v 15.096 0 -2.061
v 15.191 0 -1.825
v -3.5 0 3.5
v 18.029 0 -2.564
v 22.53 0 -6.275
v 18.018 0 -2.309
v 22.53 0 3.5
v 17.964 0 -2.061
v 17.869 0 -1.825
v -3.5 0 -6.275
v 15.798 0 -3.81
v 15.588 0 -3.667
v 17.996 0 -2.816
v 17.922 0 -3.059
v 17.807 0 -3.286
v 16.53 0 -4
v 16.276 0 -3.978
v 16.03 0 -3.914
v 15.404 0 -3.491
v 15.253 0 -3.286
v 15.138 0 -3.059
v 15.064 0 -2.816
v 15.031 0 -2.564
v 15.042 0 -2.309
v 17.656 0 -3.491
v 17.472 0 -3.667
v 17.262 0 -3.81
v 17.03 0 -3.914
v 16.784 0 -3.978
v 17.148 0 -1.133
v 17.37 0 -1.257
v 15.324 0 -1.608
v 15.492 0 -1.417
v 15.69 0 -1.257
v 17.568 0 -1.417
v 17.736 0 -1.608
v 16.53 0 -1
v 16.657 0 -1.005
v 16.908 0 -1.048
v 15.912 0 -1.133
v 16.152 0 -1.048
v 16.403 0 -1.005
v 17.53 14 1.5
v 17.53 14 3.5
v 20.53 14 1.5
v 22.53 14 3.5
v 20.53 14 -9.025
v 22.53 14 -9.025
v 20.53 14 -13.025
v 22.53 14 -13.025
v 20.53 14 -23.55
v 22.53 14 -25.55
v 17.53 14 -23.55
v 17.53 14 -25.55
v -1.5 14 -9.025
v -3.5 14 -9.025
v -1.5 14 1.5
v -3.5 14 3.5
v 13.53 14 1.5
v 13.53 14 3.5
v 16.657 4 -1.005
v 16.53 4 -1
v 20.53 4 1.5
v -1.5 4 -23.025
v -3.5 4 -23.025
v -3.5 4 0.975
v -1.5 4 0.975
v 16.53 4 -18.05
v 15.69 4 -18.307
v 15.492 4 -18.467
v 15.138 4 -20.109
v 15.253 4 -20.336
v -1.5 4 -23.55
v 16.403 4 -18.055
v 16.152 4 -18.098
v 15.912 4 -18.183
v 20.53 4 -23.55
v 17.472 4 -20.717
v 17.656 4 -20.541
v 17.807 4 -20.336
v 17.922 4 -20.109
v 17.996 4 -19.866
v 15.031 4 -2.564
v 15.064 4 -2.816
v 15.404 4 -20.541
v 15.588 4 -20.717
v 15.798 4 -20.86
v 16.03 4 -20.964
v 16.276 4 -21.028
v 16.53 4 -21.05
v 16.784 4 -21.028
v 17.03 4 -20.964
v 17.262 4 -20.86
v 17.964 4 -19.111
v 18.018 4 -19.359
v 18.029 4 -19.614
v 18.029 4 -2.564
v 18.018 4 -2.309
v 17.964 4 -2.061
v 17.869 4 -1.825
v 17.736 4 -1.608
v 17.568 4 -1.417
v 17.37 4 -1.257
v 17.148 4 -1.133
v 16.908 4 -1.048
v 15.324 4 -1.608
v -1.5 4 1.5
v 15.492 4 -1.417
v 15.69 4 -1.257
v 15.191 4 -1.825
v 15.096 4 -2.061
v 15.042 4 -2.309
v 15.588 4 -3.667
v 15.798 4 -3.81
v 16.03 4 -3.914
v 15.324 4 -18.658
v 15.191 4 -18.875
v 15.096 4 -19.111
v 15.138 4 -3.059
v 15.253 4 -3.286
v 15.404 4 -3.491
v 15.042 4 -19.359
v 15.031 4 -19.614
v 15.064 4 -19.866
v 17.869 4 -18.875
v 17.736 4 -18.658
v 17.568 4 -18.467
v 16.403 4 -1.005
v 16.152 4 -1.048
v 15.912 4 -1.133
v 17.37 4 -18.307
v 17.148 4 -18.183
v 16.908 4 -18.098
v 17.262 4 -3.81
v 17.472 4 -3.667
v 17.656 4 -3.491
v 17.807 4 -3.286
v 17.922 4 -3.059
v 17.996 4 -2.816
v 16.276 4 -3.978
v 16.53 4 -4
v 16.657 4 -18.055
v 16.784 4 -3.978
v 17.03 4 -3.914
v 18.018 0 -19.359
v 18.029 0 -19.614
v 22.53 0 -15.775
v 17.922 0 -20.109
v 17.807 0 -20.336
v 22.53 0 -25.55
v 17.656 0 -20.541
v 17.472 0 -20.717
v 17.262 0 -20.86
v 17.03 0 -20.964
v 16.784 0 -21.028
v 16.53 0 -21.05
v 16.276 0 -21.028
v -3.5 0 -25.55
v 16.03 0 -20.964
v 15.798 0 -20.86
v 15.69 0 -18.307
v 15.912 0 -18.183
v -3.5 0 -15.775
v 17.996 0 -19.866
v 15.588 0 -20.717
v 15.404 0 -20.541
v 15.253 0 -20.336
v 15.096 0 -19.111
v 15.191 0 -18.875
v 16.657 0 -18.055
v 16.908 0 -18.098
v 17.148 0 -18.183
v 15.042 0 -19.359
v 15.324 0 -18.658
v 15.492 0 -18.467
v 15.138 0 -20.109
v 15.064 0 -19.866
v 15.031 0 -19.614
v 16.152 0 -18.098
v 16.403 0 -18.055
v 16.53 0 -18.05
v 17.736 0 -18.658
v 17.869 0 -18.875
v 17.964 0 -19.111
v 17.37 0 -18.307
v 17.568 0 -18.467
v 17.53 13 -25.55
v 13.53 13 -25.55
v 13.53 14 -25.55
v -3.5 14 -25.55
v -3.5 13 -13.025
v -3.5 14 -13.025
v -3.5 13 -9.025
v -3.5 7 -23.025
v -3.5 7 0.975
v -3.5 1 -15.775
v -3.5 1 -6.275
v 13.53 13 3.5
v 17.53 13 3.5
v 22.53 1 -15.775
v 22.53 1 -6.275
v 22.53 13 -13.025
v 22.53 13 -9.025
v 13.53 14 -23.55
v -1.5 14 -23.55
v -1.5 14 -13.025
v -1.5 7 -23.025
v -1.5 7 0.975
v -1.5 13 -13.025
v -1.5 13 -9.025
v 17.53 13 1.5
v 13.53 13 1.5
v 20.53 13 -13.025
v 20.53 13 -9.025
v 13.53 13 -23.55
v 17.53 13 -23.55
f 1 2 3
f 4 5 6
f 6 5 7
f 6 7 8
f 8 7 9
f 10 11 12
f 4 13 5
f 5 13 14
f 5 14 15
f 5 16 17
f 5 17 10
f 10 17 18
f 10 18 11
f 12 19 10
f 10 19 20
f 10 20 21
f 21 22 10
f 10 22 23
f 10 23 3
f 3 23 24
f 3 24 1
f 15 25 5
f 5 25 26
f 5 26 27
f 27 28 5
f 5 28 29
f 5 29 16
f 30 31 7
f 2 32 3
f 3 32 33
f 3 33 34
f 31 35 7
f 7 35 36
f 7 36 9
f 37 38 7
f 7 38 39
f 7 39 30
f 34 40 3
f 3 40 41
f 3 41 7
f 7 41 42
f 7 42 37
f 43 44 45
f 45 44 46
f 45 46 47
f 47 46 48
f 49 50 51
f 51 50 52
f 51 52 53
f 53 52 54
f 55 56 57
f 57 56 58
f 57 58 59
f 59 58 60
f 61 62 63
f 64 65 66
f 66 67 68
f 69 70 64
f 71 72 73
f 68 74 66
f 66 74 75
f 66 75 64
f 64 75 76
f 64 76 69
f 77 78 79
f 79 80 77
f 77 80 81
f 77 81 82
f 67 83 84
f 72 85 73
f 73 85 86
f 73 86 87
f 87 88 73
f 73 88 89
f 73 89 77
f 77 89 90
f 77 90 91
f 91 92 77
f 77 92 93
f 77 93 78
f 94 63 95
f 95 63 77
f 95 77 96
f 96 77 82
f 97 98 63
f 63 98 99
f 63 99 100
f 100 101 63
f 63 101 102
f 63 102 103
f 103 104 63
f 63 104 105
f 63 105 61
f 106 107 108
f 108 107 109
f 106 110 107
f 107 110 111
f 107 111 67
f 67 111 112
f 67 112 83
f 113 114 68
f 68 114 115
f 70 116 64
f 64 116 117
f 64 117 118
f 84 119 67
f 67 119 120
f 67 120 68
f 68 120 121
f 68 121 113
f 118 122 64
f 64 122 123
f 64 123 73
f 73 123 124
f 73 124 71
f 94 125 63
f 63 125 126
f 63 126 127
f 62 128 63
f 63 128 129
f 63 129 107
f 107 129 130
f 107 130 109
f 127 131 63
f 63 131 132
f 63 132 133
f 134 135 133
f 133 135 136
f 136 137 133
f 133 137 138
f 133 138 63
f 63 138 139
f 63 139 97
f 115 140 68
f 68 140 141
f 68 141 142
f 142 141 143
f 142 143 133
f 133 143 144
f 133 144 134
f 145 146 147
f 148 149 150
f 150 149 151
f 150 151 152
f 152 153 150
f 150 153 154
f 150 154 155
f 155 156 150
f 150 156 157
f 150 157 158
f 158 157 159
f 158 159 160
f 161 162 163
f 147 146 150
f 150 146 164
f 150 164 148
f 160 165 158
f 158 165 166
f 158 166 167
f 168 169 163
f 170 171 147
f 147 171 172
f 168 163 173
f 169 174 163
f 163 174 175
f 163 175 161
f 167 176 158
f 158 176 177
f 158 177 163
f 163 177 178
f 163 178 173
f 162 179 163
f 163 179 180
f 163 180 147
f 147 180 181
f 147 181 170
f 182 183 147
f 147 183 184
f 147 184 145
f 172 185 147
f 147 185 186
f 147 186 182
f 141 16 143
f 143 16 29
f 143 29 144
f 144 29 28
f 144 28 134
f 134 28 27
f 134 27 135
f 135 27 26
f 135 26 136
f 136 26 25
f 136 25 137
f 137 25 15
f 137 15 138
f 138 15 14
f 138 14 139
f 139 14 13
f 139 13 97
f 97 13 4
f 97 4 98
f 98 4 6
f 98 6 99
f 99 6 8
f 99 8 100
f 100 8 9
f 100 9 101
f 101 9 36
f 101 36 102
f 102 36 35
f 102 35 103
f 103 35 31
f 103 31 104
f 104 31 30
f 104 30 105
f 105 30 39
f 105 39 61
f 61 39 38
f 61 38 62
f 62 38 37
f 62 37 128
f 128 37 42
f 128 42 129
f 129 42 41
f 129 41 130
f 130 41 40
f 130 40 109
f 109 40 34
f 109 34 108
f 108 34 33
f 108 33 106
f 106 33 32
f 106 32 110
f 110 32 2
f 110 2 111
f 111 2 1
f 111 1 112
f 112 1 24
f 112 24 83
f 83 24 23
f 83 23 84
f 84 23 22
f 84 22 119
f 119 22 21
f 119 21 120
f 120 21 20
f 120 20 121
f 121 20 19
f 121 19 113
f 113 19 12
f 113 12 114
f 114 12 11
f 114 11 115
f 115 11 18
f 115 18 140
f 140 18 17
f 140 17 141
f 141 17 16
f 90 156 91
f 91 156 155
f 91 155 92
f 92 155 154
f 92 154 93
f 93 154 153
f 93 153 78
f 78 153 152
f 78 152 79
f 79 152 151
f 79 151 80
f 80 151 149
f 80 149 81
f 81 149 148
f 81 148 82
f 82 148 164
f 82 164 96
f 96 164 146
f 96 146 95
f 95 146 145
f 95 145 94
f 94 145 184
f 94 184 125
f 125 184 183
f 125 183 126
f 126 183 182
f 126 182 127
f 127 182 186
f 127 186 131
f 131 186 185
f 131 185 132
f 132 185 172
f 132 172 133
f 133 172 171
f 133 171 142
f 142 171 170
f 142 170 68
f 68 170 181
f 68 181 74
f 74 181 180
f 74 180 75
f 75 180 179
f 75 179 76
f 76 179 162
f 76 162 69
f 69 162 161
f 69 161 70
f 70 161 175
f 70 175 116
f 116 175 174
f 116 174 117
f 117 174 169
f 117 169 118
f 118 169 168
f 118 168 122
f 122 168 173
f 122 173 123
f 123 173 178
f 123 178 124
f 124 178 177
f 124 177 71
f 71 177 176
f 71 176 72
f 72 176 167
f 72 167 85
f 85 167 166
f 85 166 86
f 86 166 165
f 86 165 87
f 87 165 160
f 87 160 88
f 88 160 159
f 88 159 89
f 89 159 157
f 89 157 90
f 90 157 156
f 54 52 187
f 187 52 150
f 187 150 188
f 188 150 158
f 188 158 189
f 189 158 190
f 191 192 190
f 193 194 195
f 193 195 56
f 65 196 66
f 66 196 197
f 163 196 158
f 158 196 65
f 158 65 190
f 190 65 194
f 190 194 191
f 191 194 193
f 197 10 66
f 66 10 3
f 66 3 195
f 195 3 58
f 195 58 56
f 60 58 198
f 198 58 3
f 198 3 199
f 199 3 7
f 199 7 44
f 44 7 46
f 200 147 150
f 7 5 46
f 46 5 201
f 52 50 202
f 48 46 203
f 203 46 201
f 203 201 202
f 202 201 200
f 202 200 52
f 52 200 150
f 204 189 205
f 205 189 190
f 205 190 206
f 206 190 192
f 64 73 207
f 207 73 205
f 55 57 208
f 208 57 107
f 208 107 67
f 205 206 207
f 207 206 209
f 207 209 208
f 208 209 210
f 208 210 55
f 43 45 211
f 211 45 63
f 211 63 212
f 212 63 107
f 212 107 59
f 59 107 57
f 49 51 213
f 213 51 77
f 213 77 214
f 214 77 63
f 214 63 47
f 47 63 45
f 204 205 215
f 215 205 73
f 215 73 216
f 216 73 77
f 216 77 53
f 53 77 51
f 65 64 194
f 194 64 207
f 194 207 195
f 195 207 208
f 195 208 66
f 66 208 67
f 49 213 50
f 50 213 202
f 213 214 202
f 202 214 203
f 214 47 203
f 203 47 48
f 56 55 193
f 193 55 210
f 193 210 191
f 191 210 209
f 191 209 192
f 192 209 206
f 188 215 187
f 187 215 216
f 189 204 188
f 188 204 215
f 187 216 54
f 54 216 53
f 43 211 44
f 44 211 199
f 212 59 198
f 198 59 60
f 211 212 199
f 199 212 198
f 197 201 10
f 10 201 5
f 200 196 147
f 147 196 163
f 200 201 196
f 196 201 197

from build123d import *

# Parameters (mm, degrees)
SKETCH1_W           = 22.03
SKETCH1_H           = 25.05
SKETCH1_R           = 1.5
BOSS_EXTRUDE1_DEPTH = 4
SKETCH2_W           = 26.03
SKETCH2_H           = 29.05
SKETCH2_W_2         = 22.03
SKETCH2_H_2         = 25.05
BOSS_EXTRUDE3_DEPTH = 14
CUT_EXTRUDE1_DEPTH  = 5
CUT_EXTRUDE2_DEPTH  = 50
SKETCH5_W           = 4
SKETCH5_H           = 1
CUT_EXTRUDE3_DEPTH  = 50
CUT_EXTRUDE4_DEPTH  = 1


with BuildPart() as part:
    # Sketch1 → Boss-Extrude1 (new body)
    with BuildSketch(Plane(origin=(0, 0, 0), x_dir=(1, 0, 0), z_dir=(0, 1, 0))):
        with Locations((9.515, 11.025)):
            Rectangle(SKETCH1_W, SKETCH1_H)
        with Locations(Location((16.53, 2.5, 0), (0, 0, 270))):
            Circle(SKETCH1_R, mode=Mode.SUBTRACT)
        with Locations(Location((16.53, 19.55, 0), (0, 0, 270))):
            Circle(SKETCH1_R, mode=Mode.SUBTRACT)
    extrude(amount=BOSS_EXTRUDE1_DEPTH)

    # Sketch2 → Boss-Extrude3 (add)
    with BuildSketch(Plane.XZ):
        with Locations((9.515, -11.025)):
            Rectangle(SKETCH2_W, SKETCH2_H)
        with Locations((9.515, -11.025)):
            Rectangle(SKETCH2_W_2, SKETCH2_H_2, mode=Mode.SUBTRACT)
    extrude(amount=-BOSS_EXTRUDE3_DEPTH)

    # Sketch3 → Cut-Extrude1 (cut)
    with BuildSketch(Plane.ZY.offset(3.5)):
        Polygon((-11.025, 4), (-23.025, 4), (-23.025, 7), (0.975, 7), (0.975, 4), align=None)
    extrude(amount=-CUT_EXTRUDE1_DEPTH, mode=Mode.SUBTRACT)

    # Sketch4 → Cut-Extrude2 (cut)
    with BuildSketch(Plane.ZY.offset(3.5)):
        Polygon((-11.025, 14), (-13.025, 14), (-13.025, 13), (-9.025, 13), (-9.025, 14), align=None)
    extrude(amount=-CUT_EXTRUDE2_DEPTH, mode=Mode.SUBTRACT)

    # Sketch5 → Cut-Extrude3 (cut)
    with BuildSketch(Plane(origin=(0, 0, -25.55), x_dir=(-1, 0, 0), z_dir=(0, 0, -1))):
        with Locations((-15.53, 13.5)):
            Rectangle(SKETCH5_W, SKETCH5_H)
    extrude(amount=-CUT_EXTRUDE3_DEPTH, mode=Mode.SUBTRACT)

    # Sketch7 → Cut-Extrude4 (cut)
    with BuildSketch(Plane.XZ):
        Polygon((-3.5, -11.025), (-3.5, -6.275), (22.53, -6.275), (22.53, -15.775), (-3.5, -15.775), align=None)
    extrude(amount=-CUT_EXTRUDE4_DEPTH, mode=Mode.SUBTRACT)


solid = part.part
